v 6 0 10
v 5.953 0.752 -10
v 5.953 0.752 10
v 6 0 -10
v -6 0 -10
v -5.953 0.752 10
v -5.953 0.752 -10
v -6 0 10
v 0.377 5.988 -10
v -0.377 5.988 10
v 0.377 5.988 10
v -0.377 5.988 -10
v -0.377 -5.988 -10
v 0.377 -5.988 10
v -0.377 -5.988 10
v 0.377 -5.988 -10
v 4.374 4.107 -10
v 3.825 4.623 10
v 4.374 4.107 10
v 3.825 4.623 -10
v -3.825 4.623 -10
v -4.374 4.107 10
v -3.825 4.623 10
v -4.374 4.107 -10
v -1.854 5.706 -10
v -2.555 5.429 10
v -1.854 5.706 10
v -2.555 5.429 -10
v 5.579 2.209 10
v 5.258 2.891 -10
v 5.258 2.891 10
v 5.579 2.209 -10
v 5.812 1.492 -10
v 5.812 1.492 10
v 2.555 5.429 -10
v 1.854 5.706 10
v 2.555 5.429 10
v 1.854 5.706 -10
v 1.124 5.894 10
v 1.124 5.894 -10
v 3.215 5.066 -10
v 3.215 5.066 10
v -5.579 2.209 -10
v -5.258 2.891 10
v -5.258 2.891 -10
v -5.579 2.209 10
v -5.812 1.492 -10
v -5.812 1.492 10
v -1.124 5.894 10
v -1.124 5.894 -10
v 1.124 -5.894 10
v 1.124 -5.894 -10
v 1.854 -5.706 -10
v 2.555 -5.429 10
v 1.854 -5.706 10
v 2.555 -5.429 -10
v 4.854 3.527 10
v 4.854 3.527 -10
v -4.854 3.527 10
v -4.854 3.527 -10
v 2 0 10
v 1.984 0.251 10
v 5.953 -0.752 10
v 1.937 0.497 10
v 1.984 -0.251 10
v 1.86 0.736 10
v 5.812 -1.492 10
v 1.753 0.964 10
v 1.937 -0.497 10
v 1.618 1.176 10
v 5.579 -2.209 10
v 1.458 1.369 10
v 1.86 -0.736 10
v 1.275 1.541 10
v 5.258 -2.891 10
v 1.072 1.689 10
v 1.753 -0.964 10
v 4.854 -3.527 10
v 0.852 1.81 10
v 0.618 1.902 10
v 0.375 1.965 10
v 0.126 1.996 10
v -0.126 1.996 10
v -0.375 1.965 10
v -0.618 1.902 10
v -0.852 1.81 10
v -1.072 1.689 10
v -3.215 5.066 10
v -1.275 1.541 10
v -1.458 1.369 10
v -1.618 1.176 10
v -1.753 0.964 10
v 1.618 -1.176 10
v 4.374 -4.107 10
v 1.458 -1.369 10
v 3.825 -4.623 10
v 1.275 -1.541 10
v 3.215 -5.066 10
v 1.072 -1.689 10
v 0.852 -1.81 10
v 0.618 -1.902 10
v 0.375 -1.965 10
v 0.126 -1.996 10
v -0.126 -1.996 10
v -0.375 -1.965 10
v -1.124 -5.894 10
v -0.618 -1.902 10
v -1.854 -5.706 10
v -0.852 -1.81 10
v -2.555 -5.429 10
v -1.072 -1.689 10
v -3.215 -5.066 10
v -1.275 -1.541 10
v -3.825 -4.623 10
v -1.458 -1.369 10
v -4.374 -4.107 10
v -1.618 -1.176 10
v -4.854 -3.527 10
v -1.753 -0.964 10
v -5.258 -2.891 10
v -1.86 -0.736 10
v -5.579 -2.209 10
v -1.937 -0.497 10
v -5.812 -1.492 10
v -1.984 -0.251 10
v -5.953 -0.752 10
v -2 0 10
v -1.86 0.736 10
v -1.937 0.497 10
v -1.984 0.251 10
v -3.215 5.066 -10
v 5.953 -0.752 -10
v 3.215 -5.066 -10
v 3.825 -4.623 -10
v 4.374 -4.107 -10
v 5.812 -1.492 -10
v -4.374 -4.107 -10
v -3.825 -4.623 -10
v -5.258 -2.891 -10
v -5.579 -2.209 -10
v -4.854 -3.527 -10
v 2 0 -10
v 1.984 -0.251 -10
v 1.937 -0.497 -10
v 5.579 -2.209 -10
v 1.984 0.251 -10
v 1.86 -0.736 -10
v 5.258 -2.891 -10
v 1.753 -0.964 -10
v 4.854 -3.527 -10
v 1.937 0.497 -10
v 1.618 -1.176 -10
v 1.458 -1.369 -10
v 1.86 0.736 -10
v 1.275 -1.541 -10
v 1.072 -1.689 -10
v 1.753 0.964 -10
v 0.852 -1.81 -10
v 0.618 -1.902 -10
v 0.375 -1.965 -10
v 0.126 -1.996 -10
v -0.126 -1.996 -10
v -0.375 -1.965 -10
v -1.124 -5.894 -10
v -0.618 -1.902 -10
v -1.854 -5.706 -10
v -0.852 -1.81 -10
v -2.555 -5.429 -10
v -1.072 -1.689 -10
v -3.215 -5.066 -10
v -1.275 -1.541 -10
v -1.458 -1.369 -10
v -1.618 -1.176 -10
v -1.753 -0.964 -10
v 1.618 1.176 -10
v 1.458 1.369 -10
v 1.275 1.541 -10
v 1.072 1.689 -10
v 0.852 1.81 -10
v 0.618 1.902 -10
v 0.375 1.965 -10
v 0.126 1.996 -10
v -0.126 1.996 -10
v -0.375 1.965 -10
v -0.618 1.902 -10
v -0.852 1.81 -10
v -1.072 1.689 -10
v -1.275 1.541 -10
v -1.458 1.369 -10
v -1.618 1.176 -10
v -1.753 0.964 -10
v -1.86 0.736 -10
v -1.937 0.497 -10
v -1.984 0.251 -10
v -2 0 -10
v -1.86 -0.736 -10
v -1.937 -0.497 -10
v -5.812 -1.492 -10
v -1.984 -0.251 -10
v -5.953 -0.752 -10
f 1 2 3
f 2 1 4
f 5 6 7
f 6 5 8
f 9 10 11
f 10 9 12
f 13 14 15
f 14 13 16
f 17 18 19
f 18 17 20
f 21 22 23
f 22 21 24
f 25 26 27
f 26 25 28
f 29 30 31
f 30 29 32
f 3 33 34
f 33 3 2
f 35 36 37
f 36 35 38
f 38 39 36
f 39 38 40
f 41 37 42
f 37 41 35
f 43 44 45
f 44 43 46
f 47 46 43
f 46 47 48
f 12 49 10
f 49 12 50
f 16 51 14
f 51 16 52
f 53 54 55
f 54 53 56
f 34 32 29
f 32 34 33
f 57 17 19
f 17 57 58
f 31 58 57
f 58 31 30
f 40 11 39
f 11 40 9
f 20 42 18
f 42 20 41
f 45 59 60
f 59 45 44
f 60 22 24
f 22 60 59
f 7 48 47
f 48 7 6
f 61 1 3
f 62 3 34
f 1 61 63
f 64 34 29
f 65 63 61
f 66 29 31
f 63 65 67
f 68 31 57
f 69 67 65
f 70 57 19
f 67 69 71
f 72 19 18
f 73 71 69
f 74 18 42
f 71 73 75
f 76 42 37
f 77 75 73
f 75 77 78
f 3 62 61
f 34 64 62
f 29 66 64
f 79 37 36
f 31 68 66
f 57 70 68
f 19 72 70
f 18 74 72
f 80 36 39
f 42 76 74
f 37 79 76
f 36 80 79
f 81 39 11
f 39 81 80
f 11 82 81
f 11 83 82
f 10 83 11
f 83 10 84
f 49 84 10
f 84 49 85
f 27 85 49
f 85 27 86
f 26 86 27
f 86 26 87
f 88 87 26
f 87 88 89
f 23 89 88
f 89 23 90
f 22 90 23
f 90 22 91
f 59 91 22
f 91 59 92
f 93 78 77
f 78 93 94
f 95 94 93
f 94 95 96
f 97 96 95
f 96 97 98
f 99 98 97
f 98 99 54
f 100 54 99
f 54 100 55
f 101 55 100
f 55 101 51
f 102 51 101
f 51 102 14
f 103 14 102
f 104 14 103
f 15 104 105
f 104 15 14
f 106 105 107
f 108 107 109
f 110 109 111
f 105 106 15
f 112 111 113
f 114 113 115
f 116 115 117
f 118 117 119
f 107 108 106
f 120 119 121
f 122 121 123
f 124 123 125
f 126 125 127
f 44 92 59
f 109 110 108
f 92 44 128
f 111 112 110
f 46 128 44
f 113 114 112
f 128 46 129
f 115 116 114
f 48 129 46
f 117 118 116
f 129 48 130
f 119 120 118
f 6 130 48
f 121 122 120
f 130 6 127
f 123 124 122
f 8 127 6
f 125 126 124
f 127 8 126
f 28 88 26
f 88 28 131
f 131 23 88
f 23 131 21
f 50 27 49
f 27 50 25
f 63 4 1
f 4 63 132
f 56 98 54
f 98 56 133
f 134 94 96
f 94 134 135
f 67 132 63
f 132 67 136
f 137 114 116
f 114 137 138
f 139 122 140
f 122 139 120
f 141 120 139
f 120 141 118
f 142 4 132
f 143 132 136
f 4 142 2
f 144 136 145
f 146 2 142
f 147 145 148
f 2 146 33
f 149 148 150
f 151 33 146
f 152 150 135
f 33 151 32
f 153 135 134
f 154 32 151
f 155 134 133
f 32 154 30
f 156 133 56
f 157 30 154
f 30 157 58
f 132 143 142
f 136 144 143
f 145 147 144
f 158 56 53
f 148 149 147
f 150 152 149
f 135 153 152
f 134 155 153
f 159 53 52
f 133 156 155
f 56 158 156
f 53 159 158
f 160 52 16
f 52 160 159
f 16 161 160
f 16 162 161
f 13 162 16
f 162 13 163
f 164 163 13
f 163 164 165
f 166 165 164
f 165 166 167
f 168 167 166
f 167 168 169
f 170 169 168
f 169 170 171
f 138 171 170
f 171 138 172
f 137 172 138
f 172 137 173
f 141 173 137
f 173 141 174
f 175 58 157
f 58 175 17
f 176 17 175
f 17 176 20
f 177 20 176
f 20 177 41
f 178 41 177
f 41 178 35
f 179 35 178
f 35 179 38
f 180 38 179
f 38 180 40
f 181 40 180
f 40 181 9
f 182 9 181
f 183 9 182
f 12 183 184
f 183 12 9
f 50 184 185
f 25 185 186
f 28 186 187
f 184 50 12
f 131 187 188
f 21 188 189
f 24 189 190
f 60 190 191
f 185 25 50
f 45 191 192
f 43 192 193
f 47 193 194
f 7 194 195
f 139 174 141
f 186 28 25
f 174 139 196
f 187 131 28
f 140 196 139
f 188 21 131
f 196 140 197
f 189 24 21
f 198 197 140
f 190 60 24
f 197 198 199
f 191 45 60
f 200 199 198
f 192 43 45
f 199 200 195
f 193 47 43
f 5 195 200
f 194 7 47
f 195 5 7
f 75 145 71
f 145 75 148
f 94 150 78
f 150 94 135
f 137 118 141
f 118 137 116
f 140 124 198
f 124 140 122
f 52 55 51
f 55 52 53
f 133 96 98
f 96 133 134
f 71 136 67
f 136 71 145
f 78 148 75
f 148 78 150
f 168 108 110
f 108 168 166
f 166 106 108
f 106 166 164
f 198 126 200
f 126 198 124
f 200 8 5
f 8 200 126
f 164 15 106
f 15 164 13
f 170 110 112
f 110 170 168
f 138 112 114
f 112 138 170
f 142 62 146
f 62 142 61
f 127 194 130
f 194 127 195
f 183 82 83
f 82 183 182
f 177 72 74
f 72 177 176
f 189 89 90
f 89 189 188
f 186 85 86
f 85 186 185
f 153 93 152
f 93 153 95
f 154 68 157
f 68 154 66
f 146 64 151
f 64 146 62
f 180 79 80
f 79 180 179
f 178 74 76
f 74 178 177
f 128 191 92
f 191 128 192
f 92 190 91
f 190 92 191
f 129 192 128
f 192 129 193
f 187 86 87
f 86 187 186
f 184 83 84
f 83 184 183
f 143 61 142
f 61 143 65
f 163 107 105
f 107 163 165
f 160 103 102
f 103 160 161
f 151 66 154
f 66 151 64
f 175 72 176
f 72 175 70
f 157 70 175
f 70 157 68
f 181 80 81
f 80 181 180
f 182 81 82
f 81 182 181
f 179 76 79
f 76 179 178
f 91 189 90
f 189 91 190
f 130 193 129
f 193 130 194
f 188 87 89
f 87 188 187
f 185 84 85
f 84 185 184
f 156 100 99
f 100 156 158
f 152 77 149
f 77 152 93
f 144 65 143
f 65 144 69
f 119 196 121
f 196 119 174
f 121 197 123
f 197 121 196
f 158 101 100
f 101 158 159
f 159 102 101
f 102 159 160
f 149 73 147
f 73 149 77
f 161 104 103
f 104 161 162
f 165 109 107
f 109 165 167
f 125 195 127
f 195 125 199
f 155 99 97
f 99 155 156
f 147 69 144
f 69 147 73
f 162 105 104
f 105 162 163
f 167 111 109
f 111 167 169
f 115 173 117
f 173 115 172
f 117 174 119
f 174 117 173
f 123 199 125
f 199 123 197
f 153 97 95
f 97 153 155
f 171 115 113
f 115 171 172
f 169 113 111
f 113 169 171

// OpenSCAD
$fn = 50;


difference() {
	union() {
		translate(v = [0, 0, -10.0000000000]) {
			cylinder(h = 20, r = 6.0000000000);
		}
	}
	union() {
		translate(v = [0, 0, -100.0000000000]) {
			cylinder(h = 200, r = 2);
		}
	}
}
